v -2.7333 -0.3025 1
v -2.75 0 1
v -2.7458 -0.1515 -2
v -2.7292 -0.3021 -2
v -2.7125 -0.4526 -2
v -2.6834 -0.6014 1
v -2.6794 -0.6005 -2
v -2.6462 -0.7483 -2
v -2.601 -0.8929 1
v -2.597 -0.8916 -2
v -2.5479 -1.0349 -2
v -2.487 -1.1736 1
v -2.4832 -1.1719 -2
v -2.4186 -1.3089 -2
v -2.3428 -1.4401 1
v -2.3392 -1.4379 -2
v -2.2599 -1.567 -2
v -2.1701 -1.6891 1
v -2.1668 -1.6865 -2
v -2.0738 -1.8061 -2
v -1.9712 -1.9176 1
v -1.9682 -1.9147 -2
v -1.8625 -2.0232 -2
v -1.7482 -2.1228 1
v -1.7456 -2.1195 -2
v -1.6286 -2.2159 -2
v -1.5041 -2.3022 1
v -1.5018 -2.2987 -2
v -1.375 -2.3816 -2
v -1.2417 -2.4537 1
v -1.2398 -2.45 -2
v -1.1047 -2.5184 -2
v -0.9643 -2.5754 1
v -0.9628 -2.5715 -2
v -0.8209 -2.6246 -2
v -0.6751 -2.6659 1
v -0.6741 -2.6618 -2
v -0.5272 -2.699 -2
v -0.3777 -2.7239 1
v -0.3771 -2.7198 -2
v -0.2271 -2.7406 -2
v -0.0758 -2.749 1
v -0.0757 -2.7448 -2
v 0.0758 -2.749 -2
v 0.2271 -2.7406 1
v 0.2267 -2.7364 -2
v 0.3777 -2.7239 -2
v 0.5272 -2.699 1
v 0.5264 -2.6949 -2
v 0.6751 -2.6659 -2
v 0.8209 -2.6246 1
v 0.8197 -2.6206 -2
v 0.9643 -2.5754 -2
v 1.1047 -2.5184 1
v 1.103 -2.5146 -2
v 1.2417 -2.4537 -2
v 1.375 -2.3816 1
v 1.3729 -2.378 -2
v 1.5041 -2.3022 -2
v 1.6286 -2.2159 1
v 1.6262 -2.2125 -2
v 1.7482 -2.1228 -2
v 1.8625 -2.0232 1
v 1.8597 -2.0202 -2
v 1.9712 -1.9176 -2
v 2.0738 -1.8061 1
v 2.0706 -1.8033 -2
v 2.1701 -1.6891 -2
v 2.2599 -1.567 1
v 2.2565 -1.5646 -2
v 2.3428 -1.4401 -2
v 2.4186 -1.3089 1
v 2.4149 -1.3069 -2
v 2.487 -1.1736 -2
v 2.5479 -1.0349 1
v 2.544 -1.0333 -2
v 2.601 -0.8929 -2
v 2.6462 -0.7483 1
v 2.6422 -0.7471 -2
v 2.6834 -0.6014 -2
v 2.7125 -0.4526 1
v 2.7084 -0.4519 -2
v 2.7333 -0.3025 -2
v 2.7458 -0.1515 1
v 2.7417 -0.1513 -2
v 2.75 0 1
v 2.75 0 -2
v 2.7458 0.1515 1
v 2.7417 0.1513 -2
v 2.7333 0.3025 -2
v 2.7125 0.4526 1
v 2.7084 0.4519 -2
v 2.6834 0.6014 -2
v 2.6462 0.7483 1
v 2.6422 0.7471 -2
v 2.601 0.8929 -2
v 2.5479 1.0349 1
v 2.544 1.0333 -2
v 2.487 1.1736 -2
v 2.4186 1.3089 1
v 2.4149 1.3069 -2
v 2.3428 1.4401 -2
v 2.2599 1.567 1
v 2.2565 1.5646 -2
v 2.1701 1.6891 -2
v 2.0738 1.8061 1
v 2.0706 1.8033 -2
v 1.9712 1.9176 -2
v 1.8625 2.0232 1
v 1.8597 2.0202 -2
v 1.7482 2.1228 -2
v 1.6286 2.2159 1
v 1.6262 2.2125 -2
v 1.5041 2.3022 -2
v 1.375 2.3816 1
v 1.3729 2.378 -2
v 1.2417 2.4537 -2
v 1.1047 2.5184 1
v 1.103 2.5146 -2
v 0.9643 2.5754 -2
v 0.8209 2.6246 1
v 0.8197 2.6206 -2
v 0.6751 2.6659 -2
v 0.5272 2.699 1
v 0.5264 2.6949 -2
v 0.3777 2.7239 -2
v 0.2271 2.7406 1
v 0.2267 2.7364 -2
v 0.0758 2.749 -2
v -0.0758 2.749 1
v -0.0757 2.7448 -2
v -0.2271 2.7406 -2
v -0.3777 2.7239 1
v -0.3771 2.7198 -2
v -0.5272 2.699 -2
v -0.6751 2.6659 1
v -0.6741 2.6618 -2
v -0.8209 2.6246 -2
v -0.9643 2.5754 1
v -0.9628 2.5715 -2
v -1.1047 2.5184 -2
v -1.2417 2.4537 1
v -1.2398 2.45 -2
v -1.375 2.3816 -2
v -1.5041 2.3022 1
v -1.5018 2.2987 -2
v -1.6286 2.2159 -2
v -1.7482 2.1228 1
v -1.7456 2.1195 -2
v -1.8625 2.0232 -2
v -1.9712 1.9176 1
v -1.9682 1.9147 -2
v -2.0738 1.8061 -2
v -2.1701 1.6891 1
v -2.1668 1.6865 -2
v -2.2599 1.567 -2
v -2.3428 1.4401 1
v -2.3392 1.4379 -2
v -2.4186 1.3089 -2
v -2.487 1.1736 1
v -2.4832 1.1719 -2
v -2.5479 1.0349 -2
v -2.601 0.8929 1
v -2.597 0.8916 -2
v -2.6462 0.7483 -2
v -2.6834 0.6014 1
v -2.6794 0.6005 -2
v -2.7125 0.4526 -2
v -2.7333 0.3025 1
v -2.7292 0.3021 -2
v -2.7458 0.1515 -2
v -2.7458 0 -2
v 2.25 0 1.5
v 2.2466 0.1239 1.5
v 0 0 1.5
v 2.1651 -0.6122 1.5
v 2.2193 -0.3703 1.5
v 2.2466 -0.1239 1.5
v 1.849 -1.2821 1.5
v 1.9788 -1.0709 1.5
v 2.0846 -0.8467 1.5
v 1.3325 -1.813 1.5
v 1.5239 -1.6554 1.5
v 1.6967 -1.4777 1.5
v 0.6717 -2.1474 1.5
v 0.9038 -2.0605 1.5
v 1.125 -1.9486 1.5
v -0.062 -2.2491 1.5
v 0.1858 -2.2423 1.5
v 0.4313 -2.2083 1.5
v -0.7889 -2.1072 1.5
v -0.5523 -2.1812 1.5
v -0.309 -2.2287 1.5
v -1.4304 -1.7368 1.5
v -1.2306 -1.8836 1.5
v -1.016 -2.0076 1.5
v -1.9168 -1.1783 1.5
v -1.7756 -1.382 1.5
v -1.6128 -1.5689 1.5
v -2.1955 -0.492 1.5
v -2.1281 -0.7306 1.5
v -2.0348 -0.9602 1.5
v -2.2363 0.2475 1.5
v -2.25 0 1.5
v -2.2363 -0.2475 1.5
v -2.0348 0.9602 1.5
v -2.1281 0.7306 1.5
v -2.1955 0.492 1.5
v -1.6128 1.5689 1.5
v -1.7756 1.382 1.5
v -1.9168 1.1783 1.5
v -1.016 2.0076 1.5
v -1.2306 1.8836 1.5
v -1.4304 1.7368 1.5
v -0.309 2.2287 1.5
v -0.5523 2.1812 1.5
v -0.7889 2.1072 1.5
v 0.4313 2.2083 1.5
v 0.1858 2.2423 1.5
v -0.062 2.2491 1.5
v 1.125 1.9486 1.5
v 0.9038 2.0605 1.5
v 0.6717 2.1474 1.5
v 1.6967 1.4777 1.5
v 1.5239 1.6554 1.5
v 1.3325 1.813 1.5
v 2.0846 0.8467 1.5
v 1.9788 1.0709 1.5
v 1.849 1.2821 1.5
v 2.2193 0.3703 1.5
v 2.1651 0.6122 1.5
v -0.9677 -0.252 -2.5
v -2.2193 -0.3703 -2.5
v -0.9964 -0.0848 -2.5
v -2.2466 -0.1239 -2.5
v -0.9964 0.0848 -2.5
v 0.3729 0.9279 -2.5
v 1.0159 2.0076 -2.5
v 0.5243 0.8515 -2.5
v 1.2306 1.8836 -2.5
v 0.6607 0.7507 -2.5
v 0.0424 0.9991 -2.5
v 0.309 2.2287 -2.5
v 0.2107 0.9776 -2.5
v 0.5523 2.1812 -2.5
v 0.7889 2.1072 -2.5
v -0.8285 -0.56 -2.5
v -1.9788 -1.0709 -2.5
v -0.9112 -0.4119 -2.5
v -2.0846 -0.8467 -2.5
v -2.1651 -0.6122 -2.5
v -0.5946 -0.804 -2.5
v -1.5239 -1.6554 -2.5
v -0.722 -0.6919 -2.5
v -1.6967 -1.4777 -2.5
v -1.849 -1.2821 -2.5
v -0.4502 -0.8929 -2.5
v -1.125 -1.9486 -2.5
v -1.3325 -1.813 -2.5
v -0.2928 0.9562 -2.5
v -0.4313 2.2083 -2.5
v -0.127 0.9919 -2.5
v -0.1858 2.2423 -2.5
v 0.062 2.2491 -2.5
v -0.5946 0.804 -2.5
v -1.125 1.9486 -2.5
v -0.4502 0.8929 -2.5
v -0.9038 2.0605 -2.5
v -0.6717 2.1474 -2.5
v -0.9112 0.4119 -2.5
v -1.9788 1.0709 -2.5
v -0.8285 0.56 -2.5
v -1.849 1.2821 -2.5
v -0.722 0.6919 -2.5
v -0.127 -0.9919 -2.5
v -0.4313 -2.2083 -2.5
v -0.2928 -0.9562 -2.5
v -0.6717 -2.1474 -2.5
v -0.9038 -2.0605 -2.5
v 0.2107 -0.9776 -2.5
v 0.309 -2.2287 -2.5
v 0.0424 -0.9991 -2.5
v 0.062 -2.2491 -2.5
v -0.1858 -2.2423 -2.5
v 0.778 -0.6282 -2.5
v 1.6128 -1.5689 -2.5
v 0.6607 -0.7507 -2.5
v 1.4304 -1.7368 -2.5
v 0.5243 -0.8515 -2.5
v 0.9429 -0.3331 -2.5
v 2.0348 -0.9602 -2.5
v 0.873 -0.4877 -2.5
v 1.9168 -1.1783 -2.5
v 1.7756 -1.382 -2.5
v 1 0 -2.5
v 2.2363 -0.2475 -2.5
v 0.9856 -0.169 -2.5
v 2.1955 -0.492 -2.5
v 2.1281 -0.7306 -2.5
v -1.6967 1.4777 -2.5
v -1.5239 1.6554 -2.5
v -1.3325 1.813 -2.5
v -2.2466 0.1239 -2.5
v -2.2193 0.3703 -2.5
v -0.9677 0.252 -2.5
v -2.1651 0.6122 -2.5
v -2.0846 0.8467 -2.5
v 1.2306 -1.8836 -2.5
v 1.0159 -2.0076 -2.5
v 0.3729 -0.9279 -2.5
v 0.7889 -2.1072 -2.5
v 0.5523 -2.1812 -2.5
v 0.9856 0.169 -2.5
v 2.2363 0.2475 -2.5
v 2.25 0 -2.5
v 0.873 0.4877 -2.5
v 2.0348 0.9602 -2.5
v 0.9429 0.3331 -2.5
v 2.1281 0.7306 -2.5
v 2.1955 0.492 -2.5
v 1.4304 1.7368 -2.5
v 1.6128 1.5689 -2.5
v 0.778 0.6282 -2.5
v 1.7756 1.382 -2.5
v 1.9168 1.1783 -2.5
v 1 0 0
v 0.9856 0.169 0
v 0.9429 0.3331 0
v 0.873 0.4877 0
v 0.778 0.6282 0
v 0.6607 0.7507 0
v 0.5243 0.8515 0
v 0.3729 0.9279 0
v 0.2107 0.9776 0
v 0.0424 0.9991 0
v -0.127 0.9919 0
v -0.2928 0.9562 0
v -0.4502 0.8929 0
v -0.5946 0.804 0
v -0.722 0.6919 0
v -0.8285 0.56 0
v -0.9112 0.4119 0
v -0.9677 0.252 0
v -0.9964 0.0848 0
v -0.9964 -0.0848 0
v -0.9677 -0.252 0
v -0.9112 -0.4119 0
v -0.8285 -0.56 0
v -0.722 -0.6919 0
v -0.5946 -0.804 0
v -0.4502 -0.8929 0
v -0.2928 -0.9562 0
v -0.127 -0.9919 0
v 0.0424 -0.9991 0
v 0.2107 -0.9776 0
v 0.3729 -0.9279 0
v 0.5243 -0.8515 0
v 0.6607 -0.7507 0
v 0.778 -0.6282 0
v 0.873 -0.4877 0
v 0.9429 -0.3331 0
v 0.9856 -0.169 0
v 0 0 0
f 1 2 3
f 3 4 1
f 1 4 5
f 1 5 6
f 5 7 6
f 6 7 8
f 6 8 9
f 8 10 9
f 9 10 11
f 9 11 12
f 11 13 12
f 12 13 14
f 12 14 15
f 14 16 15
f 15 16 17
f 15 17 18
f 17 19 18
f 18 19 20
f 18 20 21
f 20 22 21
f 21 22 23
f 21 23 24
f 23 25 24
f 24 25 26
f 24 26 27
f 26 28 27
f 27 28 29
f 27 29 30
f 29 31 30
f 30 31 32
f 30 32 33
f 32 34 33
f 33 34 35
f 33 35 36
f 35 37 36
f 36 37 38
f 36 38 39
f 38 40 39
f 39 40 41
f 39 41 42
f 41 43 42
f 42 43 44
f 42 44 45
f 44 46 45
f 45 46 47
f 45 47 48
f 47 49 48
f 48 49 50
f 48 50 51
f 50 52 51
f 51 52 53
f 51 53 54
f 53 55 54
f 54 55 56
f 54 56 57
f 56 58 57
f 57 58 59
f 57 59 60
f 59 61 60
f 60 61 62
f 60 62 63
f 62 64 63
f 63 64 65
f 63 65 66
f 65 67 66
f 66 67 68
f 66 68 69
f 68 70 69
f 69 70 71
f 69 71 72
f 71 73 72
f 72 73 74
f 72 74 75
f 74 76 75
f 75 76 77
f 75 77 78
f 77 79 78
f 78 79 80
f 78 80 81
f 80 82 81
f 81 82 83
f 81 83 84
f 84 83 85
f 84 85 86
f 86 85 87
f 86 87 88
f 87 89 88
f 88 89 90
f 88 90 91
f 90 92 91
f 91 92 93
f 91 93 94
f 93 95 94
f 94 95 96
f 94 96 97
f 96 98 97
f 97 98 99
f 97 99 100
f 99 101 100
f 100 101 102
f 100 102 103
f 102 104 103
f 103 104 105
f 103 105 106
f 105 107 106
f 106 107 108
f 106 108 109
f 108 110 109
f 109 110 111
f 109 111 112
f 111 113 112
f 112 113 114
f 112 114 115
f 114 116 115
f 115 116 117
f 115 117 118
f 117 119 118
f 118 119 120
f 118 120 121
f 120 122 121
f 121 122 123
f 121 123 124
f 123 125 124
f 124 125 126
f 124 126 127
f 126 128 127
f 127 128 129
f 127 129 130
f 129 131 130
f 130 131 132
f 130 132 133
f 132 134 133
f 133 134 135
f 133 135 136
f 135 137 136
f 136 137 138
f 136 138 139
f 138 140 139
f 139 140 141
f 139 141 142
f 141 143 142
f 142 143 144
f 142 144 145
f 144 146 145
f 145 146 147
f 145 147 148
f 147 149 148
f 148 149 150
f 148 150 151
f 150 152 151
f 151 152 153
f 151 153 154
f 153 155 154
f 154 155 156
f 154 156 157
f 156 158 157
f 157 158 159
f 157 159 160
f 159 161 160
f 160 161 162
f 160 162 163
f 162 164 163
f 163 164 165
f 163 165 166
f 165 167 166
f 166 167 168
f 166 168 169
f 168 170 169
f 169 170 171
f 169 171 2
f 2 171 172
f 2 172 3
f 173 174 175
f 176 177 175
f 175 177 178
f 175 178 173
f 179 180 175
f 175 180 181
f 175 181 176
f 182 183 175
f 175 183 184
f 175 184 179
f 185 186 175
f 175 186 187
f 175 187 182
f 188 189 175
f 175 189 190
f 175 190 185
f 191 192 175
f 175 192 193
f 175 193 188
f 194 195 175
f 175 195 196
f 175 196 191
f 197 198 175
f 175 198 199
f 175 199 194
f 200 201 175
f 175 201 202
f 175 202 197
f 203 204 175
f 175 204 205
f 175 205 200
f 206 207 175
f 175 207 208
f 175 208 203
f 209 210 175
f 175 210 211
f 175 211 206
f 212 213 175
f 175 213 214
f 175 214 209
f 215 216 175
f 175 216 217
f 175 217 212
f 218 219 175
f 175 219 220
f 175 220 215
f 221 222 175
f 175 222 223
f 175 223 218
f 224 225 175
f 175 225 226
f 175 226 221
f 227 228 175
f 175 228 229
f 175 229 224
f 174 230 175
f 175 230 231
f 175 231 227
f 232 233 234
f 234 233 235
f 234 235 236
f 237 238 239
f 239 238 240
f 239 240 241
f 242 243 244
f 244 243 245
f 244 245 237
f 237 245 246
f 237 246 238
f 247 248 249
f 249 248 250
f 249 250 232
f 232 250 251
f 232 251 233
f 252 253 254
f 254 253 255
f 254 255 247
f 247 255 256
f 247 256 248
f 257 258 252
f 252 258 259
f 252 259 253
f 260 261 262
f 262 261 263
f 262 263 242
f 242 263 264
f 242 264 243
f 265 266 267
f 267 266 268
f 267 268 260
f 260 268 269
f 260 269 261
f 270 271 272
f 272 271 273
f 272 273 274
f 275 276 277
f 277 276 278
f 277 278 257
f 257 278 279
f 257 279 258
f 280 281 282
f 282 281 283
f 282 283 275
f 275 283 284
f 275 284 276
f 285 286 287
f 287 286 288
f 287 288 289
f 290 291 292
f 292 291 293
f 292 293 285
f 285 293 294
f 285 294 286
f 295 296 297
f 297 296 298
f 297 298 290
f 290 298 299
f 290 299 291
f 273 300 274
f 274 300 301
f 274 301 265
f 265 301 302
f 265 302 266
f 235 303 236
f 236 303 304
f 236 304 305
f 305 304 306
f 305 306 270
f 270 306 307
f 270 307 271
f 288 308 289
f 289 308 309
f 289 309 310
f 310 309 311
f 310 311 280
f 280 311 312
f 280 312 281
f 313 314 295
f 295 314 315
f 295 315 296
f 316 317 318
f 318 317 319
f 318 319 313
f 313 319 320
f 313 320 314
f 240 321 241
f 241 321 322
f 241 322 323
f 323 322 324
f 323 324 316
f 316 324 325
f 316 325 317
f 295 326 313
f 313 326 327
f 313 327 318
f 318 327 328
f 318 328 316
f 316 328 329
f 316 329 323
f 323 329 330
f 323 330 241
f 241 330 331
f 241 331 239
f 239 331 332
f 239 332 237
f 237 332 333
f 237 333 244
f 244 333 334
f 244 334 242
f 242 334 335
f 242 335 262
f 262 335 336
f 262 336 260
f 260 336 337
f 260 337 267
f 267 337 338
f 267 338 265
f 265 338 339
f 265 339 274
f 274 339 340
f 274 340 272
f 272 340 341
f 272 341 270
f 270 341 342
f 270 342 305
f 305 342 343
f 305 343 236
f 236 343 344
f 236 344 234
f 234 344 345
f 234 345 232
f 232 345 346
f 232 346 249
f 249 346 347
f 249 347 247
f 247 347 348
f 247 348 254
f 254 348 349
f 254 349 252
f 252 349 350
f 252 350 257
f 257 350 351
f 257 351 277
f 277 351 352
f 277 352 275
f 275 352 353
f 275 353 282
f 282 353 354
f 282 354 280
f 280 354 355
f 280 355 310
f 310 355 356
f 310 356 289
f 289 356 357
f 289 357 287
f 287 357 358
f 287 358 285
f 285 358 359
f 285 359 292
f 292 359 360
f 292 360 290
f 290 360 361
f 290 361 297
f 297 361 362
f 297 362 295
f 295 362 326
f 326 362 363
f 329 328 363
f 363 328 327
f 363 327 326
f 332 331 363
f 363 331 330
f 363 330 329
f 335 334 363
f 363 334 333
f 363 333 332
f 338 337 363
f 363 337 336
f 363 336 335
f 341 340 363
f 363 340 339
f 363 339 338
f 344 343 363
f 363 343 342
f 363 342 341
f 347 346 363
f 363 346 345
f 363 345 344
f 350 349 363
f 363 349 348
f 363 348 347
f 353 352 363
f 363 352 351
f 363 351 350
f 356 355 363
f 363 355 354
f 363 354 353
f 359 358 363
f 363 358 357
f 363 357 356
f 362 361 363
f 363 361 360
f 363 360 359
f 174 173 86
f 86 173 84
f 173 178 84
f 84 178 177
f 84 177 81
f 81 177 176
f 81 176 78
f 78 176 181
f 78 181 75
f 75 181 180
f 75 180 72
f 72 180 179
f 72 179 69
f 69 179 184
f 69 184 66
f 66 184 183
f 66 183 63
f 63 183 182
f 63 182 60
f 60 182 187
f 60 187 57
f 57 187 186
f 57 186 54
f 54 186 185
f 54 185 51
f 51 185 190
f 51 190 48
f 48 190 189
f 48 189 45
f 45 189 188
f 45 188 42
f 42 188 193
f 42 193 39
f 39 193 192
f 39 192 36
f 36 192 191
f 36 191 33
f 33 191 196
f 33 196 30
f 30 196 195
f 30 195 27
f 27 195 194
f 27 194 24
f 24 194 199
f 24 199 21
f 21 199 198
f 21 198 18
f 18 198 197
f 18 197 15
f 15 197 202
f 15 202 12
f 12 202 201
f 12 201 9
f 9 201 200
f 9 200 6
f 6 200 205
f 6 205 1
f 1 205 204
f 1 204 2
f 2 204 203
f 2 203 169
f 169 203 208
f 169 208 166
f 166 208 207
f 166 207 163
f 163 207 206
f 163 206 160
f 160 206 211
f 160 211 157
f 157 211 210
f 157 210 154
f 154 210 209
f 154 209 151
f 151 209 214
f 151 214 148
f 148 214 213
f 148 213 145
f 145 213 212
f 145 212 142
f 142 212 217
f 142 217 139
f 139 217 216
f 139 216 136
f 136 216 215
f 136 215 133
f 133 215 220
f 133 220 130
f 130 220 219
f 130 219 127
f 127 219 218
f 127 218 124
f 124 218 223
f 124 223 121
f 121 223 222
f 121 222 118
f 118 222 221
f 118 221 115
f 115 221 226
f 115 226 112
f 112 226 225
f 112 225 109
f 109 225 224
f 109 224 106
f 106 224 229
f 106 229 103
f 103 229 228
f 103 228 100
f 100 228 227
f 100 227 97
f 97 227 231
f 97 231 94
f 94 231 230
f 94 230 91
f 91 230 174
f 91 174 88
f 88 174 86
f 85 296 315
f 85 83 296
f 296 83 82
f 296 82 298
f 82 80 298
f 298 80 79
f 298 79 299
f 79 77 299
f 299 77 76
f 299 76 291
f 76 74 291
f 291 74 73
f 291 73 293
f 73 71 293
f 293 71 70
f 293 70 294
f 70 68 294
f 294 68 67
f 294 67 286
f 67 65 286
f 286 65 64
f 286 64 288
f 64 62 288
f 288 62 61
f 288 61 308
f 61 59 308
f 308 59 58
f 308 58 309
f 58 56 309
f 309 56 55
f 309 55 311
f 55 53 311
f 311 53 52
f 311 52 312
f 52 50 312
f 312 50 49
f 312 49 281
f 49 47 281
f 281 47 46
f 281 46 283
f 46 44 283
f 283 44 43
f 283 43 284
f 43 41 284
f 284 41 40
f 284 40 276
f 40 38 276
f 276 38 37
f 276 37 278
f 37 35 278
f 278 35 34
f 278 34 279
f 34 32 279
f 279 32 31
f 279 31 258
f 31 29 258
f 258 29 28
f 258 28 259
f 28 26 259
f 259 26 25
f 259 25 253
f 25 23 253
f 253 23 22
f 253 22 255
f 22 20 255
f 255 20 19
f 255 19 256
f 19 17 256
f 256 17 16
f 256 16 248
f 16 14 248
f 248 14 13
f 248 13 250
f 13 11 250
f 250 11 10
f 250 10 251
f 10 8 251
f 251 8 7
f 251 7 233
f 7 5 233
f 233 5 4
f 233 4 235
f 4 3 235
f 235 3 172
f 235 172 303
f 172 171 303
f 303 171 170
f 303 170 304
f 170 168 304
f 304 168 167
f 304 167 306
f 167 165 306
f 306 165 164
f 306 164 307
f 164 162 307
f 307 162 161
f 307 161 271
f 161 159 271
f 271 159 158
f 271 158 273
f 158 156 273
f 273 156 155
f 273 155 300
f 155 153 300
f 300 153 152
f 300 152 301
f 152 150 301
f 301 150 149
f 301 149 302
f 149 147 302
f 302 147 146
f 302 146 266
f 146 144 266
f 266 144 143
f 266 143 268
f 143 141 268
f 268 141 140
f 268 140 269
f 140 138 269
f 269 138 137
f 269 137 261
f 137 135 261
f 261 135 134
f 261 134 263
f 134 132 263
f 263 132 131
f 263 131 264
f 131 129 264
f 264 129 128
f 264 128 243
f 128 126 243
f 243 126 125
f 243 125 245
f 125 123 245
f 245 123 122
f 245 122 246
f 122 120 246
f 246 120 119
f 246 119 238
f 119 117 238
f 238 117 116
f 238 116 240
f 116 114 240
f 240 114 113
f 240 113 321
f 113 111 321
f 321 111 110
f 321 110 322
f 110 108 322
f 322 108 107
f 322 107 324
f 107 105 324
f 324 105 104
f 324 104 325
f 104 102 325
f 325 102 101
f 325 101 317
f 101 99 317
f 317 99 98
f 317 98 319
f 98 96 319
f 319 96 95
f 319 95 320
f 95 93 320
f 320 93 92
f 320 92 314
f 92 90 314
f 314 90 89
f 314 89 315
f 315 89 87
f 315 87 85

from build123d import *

# Parameters (mm, degrees)
SKETCH_1_R      = 2.75
EXTRUDE_1_DEPTH = 1.5
EXTRUDE_START   = -2.5
SKETCH_2_R      = 2.75
SKETCH_2_R_2    = 1
EXTRUDE_2_DEPTH = 2.5
CHAMFER_1_SIZE  = 0.5


with BuildPart() as part:
    # 스케치1 → 보스-돌출1 (new body)
    with BuildSketch(Plane.XY):
        Circle(SKETCH_1_R)
    extrude(amount=EXTRUDE_1_DEPTH)

    # 스케치2 → 보스-돌출2 (add)
    with BuildSketch(Plane.XY.offset(EXTRUDE_START)):
        Circle(SKETCH_2_R)
        Circle(SKETCH_2_R_2, mode=Mode.SUBTRACT)
    extrude(amount=EXTRUDE_2_DEPTH)

    # 모따기1
    chamfer_1_edges = [part.edges().sort_by_distance(p)[0] for p in [
        (-2.75, 0, 1.5),
        (-2.75, 0, -2.5),
    ]]
    chamfer(chamfer_1_edges, length=CHAMFER_1_SIZE)


solid = part.part
